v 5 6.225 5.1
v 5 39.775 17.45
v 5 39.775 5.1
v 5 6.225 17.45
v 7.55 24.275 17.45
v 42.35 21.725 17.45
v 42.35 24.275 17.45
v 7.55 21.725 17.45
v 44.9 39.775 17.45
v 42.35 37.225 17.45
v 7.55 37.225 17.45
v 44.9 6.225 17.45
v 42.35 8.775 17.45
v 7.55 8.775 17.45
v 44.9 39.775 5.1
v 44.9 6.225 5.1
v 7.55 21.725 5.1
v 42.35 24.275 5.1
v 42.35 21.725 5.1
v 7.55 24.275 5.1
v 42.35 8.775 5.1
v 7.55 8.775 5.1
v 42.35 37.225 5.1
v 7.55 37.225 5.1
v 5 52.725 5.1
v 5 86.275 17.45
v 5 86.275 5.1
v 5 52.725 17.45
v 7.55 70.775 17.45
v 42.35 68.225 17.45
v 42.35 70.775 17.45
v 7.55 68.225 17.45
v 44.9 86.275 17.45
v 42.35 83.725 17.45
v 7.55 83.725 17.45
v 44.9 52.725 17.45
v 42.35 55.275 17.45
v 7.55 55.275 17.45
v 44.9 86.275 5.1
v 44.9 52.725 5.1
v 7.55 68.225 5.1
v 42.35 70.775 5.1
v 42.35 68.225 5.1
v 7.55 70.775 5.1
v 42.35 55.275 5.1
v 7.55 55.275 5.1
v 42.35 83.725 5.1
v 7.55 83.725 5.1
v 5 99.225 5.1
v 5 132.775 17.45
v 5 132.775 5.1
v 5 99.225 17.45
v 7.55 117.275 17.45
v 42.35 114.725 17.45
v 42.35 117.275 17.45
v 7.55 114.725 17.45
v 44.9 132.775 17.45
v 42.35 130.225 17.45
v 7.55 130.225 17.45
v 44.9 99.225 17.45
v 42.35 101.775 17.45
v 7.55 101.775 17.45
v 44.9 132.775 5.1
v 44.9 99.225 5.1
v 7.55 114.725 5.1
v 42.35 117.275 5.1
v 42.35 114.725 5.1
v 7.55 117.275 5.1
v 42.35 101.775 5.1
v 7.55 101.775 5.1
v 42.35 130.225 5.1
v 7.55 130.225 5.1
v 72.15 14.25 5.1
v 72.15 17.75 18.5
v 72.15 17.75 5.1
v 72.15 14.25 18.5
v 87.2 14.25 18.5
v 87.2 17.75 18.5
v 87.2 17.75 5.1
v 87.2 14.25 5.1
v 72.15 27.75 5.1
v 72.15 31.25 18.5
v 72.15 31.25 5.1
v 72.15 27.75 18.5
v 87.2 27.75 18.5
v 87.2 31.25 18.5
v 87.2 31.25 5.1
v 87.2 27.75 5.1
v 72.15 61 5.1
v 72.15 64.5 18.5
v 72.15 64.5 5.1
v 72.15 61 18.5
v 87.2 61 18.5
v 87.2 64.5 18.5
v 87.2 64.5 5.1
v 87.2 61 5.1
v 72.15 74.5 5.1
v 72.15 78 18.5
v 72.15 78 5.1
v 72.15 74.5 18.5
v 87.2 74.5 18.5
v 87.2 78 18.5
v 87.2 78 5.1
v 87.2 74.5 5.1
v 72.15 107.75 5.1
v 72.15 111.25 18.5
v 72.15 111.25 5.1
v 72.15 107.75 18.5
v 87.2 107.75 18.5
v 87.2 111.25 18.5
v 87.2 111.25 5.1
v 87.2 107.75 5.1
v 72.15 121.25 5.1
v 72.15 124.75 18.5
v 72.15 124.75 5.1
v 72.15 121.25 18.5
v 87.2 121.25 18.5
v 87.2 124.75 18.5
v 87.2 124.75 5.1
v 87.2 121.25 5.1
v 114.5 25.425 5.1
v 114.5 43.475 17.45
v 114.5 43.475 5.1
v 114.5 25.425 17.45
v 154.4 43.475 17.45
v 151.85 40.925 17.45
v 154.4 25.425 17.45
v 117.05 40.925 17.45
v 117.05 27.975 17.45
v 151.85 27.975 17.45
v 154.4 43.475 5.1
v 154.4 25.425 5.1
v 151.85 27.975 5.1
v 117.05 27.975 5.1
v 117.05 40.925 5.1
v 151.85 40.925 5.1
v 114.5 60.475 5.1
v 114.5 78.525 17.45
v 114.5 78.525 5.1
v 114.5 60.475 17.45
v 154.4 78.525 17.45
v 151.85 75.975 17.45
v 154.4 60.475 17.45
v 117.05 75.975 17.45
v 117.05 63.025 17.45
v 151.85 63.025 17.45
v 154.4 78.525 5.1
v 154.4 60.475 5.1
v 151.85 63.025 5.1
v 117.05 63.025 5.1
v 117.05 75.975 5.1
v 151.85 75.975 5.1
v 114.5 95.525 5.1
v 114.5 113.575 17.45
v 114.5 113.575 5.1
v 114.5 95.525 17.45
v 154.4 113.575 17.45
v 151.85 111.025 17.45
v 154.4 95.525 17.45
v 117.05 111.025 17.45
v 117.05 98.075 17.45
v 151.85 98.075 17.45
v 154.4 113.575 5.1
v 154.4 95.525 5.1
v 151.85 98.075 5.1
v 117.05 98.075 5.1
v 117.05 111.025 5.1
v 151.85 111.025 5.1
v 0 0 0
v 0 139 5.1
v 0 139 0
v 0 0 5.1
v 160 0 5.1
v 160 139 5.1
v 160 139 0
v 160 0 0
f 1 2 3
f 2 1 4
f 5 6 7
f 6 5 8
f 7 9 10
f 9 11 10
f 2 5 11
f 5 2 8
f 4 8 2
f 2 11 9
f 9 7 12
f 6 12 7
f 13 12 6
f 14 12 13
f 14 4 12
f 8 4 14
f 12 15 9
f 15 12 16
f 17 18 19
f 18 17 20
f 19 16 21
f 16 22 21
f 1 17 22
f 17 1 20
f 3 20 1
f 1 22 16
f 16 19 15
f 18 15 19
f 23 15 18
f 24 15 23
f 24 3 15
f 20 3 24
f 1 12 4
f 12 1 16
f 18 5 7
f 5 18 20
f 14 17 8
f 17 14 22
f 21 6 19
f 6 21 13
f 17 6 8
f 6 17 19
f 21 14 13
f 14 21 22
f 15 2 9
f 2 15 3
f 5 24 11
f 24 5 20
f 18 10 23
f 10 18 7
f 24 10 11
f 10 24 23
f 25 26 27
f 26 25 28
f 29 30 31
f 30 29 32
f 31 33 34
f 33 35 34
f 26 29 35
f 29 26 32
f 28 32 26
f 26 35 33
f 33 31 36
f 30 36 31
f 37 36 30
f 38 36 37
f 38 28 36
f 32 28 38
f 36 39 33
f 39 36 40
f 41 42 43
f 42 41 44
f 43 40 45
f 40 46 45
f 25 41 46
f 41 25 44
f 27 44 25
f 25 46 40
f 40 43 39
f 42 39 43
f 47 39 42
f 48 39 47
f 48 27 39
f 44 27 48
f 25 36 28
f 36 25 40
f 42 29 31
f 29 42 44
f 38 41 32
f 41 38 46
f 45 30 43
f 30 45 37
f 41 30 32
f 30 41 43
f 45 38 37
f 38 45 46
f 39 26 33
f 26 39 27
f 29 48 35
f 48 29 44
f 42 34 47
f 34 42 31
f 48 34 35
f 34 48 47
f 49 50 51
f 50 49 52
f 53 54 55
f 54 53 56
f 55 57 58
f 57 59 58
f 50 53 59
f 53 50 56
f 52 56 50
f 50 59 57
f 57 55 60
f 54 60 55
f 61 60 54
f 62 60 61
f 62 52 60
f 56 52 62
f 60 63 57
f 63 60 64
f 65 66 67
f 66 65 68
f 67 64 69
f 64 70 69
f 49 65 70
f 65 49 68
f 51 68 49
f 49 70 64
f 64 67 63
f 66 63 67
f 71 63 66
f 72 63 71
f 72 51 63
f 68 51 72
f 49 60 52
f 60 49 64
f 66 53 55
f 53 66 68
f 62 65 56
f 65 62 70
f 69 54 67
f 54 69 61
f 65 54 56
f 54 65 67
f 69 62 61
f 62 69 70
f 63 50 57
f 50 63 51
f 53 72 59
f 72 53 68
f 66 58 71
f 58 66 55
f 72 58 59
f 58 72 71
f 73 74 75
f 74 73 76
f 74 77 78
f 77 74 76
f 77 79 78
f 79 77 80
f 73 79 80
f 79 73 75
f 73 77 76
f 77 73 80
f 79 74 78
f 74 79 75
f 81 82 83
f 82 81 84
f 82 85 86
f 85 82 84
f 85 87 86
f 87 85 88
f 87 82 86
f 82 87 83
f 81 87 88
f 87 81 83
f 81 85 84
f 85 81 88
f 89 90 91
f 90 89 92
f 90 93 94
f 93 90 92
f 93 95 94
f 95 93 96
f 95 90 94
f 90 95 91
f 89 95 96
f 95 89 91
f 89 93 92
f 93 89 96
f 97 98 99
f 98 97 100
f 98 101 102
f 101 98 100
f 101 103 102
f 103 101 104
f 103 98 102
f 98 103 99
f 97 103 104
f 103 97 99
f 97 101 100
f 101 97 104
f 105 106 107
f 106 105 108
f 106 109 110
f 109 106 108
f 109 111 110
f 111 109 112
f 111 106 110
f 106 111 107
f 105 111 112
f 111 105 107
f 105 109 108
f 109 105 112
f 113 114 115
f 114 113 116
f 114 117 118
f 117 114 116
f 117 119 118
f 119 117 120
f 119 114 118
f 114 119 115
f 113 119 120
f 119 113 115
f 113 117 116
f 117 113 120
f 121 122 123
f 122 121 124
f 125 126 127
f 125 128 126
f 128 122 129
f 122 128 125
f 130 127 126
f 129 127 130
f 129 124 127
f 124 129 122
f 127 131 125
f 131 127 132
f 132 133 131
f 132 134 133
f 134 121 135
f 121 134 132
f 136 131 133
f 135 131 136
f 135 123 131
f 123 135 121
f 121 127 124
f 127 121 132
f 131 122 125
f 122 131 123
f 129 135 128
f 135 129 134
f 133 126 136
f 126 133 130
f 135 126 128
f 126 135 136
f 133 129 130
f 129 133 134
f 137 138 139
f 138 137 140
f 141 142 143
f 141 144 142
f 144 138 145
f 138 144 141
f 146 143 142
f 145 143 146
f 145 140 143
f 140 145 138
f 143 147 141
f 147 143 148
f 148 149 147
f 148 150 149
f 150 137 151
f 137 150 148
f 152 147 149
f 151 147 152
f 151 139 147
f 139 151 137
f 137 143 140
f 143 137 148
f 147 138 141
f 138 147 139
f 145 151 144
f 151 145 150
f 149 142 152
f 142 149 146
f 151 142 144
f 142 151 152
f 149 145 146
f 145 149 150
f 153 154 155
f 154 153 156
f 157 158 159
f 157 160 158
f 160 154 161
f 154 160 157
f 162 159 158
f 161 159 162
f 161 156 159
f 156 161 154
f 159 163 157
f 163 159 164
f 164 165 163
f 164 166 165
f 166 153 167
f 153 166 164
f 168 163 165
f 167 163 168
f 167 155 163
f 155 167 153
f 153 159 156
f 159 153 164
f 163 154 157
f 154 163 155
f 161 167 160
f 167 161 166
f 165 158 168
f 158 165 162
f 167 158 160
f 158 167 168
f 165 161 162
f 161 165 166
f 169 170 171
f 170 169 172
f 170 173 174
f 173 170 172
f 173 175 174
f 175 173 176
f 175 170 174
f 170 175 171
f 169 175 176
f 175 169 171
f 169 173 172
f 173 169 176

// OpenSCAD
// ----- ----- ----- Declaração de variáveis ----- ----- ----- //
basex=160;
basey=139;
basez=5.1;

quadx=39.9;
quady=18.05;
quadz=17.45-5.10;
espquad=2.55;
entreQuad=1;
quadxdist=27.3;
eachQuad=17+18.05;
totalQuads=2*17+3*18.05;

dquadx=39.9;
dquady=1;
dquadz=17.45-5.10;
dquadxdist=5;
eachDquad=2*18.05-espquad+12.95;
totalDquads=3*(2*18.05-espquad)+2*12.95;

dpinx=15.05;
dpiny=3.5;
dpinz=18.5-5.1;
entrePins=10;
totalDpins=3*17+2*29.75;
eachPin=17+29.75;
dpinxdist=27.25;

// ----- ----- ----- Declaração de Funções ----- ----- ----- //
use <funcoes_GFCx.scad>

module quadrados(){
    difference(){
        cube([quadx,quady,quadz]);
        #translate([espquad,espquad,0])cube([quadx-2*espquad,quady-2*espquad,quadz]);
    }
}

module doublequadrados(){
    quadrados();
    translate([0,quady-espquad,0])quadrados();
}

module doublepins(){
    cube([dpinx,dpiny,dpinz]);
    translate([0,entrePins+dpiny,0])cube([dpinx,dpiny,dpinz]);
}

// ----- ----- ----- MAIN ----- ----- ----- //

//Base //dquadxdist+dquadx+dpinxdist+dpinx+quadxdist
cube([basex,basey,basez]);

//Double Quadrados, Double Pins e Quadrados
translate([0,0,basez]){
    
    // Double Quadrados
    translate([dquadxdist,basey/2-totalDquads/2,0]){
        doublequadrados();
        translate([0,eachDquad,0])doublequadrados();
        translate([0,2*eachDquad,0])doublequadrados();
    }
    
    // Double Pins
    translate([dquadxdist+dquadx+dpinxdist,basey/2-totalDpins/2,0]){
        doublepins();
        translate([0,eachPin,0])doublepins();
        translate([0,2*eachPin,0])doublepins();
    }
    
    // Quadrados
    translate([dquadxdist+dquadx+dpinxdist+dpinx+quadxdist,basey/2-totalQuads/2,0]){
        quadrados();
        translate([0,eachQuad,0])quadrados();
        translate([0,2*eachQuad,0])quadrados();
    }
}
